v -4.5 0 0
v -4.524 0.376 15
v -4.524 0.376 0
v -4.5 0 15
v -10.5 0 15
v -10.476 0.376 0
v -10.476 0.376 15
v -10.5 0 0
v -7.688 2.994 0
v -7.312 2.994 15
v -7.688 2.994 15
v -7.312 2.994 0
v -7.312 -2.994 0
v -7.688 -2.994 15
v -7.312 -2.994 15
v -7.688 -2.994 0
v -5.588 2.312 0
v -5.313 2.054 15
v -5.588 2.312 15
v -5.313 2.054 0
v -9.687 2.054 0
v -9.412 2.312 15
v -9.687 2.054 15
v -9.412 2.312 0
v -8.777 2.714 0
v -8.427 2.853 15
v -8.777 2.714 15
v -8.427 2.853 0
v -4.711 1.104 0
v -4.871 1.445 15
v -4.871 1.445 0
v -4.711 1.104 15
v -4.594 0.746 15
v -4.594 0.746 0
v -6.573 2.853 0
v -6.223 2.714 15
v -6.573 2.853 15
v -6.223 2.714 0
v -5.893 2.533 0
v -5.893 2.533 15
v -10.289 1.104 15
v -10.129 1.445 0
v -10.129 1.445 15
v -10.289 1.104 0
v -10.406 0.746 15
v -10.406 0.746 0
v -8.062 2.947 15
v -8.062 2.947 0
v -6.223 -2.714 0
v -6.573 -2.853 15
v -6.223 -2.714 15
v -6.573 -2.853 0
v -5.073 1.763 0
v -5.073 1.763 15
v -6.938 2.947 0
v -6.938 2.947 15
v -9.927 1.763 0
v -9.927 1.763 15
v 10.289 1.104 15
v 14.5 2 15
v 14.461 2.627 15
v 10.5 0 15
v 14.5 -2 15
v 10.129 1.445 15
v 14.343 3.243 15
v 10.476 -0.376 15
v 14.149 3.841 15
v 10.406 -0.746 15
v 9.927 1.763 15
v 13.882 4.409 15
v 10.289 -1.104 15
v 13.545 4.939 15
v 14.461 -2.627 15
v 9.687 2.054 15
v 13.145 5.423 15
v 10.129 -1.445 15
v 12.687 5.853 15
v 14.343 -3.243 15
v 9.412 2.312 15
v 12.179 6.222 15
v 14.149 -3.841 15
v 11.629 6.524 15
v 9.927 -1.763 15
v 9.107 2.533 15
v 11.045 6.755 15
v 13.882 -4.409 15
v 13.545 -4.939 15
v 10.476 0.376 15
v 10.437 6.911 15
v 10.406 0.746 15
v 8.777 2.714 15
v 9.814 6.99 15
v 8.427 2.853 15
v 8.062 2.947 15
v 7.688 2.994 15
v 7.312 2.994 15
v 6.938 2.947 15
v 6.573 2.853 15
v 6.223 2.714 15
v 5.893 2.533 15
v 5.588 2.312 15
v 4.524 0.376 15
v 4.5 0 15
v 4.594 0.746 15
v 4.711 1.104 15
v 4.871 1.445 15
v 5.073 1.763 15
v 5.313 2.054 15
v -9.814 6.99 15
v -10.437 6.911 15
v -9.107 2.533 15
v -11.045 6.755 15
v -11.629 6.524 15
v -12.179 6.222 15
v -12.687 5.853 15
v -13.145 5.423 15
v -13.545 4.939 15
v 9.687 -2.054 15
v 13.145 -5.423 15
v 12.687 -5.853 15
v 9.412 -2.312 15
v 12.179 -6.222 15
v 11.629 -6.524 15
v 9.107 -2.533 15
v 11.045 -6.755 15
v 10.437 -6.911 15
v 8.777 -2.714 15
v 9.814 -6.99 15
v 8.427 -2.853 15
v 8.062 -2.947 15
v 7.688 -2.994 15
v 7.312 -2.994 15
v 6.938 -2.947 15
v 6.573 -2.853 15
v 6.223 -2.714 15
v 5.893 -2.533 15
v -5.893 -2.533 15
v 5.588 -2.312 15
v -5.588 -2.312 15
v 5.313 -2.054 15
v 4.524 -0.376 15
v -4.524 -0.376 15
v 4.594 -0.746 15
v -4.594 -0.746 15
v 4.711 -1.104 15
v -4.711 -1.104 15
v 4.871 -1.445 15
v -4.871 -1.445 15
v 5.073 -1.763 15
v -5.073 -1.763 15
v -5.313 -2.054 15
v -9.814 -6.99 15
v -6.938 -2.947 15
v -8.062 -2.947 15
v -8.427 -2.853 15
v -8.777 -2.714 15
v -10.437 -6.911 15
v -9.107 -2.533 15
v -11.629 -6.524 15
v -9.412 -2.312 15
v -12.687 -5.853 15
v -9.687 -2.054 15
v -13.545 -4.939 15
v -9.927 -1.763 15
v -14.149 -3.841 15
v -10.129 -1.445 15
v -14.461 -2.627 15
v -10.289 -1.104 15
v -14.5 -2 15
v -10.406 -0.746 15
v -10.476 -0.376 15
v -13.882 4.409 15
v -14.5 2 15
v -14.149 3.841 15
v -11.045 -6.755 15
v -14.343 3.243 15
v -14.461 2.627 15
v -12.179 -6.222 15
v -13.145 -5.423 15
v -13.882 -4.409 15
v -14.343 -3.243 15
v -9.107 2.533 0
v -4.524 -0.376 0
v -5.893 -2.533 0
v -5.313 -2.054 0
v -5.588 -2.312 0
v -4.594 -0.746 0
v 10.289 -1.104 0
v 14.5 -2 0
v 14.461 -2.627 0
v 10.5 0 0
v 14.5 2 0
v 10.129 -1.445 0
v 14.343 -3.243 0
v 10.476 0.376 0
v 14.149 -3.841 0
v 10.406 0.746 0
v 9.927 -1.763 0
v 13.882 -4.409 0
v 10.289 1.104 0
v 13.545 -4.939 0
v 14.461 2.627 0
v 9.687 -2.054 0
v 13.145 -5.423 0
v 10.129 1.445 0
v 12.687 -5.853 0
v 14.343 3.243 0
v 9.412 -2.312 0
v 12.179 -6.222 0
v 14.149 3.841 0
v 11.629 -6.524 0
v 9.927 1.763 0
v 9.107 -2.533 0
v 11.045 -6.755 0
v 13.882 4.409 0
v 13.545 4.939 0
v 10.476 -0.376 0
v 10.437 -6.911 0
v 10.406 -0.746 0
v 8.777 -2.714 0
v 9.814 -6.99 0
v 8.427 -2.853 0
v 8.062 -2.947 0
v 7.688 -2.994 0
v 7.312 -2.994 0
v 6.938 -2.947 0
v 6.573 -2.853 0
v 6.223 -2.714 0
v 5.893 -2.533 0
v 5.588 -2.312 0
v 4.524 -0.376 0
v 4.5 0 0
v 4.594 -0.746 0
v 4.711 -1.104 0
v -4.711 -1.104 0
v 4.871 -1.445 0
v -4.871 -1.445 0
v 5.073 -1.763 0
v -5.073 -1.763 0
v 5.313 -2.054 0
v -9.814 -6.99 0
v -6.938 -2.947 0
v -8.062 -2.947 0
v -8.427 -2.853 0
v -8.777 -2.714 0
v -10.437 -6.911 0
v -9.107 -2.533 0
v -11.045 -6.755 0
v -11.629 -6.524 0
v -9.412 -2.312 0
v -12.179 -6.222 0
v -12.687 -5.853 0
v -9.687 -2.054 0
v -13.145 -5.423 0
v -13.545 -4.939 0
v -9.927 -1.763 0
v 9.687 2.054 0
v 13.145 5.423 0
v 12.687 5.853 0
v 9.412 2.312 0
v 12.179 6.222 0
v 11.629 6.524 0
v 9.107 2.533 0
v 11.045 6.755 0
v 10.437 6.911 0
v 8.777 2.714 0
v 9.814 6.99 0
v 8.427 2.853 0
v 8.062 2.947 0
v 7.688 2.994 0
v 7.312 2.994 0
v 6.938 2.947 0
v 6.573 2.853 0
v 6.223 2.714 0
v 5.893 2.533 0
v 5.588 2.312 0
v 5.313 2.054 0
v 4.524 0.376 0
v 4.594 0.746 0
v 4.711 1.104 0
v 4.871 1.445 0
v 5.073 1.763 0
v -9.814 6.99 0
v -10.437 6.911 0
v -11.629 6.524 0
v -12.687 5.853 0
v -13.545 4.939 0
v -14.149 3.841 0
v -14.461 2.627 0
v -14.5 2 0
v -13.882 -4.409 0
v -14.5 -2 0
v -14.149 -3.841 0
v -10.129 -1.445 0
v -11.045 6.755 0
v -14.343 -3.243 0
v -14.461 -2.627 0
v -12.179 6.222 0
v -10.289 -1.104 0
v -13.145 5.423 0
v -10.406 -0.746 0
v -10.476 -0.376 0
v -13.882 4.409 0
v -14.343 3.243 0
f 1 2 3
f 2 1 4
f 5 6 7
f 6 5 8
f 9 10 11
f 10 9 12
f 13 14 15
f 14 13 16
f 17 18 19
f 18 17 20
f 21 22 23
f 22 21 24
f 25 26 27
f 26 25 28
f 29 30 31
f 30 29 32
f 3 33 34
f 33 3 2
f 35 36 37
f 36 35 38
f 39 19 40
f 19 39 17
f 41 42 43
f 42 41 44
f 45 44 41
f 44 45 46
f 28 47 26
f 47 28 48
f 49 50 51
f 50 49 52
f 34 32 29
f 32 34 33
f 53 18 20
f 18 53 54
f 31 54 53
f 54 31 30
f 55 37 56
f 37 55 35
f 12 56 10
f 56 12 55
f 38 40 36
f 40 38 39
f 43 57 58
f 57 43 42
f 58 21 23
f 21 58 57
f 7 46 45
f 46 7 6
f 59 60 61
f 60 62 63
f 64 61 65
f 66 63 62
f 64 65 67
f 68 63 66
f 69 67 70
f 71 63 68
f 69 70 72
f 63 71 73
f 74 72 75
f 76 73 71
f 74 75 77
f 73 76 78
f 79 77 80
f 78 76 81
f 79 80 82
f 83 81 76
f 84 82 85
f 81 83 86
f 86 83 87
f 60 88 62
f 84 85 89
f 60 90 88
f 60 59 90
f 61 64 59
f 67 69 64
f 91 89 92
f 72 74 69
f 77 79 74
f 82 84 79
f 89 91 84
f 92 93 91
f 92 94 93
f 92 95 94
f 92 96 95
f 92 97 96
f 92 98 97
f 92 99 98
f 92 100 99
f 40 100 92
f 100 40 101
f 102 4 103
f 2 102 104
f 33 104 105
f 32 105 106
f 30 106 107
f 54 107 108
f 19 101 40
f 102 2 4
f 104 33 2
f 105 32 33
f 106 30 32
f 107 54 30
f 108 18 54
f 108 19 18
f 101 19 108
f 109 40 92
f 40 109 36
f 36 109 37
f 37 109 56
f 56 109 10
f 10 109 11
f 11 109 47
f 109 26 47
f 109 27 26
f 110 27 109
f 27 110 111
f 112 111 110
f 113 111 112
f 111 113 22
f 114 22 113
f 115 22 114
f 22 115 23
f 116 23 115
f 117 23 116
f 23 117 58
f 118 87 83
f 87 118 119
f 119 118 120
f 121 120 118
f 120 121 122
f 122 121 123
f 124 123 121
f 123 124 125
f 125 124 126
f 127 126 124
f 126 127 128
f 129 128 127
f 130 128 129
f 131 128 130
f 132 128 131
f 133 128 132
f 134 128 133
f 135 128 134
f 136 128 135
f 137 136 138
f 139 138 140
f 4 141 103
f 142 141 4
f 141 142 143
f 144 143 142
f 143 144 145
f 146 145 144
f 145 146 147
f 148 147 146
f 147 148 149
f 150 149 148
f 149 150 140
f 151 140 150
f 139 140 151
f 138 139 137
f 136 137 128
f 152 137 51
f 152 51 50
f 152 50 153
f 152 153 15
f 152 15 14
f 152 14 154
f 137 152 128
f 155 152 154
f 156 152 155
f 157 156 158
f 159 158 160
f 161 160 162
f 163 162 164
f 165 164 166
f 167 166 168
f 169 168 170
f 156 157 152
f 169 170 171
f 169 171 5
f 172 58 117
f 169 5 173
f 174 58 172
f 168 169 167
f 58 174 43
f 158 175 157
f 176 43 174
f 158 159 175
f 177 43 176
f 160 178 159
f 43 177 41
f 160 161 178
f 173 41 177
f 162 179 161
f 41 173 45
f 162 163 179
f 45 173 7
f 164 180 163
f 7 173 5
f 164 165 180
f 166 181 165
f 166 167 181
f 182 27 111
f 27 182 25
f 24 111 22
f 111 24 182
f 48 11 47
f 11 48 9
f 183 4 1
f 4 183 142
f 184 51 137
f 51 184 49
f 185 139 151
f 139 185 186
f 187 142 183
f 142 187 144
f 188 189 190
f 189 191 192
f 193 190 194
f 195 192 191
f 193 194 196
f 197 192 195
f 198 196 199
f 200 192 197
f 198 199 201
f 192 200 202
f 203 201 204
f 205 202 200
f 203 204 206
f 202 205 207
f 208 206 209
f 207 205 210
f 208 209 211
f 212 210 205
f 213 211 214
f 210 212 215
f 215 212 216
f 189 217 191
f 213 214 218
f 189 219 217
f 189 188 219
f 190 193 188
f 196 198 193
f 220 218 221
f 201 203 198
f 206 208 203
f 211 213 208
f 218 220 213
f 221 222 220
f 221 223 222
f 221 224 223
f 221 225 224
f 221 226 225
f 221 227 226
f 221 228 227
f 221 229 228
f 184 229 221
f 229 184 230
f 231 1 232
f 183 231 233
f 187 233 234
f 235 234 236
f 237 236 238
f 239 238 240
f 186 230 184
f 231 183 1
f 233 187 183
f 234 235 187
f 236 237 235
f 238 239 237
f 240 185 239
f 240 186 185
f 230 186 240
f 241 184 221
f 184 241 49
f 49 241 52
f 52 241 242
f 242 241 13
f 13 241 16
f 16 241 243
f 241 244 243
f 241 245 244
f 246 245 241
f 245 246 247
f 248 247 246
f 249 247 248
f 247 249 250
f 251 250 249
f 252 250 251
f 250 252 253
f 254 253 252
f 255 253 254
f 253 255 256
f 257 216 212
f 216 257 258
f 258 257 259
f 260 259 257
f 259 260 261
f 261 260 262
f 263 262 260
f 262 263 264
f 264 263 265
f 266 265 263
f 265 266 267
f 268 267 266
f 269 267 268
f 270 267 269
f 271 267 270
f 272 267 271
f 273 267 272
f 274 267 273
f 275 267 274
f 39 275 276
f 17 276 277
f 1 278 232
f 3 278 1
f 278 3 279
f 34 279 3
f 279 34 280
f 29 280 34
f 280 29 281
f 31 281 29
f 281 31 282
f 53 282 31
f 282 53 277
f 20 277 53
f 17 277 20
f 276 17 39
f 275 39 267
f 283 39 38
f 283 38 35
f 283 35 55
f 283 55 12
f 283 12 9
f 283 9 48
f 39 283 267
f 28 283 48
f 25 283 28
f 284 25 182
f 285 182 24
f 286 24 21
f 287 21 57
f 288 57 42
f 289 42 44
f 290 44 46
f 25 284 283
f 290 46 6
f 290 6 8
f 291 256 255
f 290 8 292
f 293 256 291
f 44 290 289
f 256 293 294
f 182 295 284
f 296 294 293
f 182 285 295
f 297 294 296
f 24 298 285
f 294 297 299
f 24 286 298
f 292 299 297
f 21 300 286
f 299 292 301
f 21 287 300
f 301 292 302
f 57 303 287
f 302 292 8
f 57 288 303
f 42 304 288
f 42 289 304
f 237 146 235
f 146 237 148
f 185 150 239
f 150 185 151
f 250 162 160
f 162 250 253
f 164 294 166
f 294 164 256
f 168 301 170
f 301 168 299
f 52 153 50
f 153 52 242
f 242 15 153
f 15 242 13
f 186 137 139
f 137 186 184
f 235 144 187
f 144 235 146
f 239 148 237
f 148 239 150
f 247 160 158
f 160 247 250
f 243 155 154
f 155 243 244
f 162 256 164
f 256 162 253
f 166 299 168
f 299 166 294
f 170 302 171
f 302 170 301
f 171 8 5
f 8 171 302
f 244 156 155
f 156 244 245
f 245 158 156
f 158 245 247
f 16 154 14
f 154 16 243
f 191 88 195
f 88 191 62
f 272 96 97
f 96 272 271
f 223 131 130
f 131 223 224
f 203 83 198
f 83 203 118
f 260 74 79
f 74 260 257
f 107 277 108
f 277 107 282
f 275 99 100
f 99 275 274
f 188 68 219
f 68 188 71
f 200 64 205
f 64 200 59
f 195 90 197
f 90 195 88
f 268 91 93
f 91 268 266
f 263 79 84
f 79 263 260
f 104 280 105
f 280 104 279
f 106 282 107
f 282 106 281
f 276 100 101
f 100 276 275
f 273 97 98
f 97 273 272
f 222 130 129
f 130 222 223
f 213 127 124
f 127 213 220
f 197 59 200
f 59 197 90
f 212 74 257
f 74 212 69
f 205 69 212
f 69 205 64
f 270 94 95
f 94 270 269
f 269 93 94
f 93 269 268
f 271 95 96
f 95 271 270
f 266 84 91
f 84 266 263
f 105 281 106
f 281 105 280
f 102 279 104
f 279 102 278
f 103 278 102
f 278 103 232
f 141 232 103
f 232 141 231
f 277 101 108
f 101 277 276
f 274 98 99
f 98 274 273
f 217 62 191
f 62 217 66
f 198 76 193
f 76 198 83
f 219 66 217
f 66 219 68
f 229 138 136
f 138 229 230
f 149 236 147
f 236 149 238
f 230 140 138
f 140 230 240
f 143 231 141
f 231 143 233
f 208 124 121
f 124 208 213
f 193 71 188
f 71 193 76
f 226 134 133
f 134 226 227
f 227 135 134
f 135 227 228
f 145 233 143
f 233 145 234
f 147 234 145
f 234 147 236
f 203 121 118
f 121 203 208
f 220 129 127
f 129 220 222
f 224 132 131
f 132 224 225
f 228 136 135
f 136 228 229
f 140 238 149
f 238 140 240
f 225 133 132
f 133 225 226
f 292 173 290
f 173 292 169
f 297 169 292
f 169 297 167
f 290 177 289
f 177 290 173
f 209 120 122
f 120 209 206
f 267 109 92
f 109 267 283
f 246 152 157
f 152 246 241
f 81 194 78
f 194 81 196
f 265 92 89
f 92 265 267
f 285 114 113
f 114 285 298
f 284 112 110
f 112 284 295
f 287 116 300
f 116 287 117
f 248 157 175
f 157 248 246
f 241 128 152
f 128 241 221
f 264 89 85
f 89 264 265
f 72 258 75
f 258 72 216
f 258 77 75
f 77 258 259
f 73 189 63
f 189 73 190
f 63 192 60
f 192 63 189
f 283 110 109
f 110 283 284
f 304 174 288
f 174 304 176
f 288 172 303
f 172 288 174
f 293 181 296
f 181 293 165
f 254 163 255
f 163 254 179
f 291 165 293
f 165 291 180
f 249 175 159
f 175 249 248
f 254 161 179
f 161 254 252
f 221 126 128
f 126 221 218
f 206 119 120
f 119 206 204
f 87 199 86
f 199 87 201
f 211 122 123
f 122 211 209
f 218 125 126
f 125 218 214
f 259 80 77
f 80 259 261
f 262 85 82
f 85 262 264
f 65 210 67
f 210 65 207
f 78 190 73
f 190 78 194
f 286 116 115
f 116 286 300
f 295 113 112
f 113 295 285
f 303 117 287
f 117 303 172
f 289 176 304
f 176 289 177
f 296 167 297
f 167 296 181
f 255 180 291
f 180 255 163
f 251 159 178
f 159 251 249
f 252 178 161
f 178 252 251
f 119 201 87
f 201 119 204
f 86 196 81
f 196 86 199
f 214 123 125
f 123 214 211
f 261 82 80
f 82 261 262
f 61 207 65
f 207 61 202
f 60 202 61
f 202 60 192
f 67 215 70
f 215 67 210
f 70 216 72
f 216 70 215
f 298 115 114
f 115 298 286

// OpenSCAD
$fn = 50;


difference() {
	union() {
		hull() {
			translate(v = [-9.5000000000, 2.0000000000, 0]) {
				cylinder(h = 15, r = 5);
			}
			translate(v = [9.5000000000, 2.0000000000, 0]) {
				cylinder(h = 15, r = 5);
			}
			translate(v = [-9.5000000000, -2.0000000000, 0]) {
				cylinder(h = 15, r = 5);
			}
			translate(v = [9.5000000000, -2.0000000000, 0]) {
				cylinder(h = 15, r = 5);
			}
		}
	}
	union() {
		translate(v = [-7.5000000000, 0.0000000000, 0]) {
			cylinder(h = 15, r = 3.0000000000);
		}
		translate(v = [7.5000000000, 0.0000000000, 0]) {
			cylinder(h = 15, r = 3.0000000000);
		}
		translate(v = [-7.5000000000, 0.0000000000, 0]) {
			cylinder(h = 15, r = 1.5000000000);
		}
		translate(v = [7.5000000000, 0.0000000000, 0]) {
			cylinder(h = 15, r = 1.5000000000);
		}
		translate(v = [-7.5000000000, 0.0000000000, 0]) {
			cylinder(h = 15, r = 1.5000000000);
		}
		translate(v = [7.5000000000, 0.0000000000, 0]) {
			cylinder(h = 15, r = 1.5000000000);
		}
		translate(v = [-7.5000000000, 0.0000000000, 0]) {
			cylinder(h = 15, r = 1.5000000000);
		}
		translate(v = [7.5000000000, 0.0000000000, 0]) {
			cylinder(h = 15, r = 1.5000000000);
		}
	}
}
